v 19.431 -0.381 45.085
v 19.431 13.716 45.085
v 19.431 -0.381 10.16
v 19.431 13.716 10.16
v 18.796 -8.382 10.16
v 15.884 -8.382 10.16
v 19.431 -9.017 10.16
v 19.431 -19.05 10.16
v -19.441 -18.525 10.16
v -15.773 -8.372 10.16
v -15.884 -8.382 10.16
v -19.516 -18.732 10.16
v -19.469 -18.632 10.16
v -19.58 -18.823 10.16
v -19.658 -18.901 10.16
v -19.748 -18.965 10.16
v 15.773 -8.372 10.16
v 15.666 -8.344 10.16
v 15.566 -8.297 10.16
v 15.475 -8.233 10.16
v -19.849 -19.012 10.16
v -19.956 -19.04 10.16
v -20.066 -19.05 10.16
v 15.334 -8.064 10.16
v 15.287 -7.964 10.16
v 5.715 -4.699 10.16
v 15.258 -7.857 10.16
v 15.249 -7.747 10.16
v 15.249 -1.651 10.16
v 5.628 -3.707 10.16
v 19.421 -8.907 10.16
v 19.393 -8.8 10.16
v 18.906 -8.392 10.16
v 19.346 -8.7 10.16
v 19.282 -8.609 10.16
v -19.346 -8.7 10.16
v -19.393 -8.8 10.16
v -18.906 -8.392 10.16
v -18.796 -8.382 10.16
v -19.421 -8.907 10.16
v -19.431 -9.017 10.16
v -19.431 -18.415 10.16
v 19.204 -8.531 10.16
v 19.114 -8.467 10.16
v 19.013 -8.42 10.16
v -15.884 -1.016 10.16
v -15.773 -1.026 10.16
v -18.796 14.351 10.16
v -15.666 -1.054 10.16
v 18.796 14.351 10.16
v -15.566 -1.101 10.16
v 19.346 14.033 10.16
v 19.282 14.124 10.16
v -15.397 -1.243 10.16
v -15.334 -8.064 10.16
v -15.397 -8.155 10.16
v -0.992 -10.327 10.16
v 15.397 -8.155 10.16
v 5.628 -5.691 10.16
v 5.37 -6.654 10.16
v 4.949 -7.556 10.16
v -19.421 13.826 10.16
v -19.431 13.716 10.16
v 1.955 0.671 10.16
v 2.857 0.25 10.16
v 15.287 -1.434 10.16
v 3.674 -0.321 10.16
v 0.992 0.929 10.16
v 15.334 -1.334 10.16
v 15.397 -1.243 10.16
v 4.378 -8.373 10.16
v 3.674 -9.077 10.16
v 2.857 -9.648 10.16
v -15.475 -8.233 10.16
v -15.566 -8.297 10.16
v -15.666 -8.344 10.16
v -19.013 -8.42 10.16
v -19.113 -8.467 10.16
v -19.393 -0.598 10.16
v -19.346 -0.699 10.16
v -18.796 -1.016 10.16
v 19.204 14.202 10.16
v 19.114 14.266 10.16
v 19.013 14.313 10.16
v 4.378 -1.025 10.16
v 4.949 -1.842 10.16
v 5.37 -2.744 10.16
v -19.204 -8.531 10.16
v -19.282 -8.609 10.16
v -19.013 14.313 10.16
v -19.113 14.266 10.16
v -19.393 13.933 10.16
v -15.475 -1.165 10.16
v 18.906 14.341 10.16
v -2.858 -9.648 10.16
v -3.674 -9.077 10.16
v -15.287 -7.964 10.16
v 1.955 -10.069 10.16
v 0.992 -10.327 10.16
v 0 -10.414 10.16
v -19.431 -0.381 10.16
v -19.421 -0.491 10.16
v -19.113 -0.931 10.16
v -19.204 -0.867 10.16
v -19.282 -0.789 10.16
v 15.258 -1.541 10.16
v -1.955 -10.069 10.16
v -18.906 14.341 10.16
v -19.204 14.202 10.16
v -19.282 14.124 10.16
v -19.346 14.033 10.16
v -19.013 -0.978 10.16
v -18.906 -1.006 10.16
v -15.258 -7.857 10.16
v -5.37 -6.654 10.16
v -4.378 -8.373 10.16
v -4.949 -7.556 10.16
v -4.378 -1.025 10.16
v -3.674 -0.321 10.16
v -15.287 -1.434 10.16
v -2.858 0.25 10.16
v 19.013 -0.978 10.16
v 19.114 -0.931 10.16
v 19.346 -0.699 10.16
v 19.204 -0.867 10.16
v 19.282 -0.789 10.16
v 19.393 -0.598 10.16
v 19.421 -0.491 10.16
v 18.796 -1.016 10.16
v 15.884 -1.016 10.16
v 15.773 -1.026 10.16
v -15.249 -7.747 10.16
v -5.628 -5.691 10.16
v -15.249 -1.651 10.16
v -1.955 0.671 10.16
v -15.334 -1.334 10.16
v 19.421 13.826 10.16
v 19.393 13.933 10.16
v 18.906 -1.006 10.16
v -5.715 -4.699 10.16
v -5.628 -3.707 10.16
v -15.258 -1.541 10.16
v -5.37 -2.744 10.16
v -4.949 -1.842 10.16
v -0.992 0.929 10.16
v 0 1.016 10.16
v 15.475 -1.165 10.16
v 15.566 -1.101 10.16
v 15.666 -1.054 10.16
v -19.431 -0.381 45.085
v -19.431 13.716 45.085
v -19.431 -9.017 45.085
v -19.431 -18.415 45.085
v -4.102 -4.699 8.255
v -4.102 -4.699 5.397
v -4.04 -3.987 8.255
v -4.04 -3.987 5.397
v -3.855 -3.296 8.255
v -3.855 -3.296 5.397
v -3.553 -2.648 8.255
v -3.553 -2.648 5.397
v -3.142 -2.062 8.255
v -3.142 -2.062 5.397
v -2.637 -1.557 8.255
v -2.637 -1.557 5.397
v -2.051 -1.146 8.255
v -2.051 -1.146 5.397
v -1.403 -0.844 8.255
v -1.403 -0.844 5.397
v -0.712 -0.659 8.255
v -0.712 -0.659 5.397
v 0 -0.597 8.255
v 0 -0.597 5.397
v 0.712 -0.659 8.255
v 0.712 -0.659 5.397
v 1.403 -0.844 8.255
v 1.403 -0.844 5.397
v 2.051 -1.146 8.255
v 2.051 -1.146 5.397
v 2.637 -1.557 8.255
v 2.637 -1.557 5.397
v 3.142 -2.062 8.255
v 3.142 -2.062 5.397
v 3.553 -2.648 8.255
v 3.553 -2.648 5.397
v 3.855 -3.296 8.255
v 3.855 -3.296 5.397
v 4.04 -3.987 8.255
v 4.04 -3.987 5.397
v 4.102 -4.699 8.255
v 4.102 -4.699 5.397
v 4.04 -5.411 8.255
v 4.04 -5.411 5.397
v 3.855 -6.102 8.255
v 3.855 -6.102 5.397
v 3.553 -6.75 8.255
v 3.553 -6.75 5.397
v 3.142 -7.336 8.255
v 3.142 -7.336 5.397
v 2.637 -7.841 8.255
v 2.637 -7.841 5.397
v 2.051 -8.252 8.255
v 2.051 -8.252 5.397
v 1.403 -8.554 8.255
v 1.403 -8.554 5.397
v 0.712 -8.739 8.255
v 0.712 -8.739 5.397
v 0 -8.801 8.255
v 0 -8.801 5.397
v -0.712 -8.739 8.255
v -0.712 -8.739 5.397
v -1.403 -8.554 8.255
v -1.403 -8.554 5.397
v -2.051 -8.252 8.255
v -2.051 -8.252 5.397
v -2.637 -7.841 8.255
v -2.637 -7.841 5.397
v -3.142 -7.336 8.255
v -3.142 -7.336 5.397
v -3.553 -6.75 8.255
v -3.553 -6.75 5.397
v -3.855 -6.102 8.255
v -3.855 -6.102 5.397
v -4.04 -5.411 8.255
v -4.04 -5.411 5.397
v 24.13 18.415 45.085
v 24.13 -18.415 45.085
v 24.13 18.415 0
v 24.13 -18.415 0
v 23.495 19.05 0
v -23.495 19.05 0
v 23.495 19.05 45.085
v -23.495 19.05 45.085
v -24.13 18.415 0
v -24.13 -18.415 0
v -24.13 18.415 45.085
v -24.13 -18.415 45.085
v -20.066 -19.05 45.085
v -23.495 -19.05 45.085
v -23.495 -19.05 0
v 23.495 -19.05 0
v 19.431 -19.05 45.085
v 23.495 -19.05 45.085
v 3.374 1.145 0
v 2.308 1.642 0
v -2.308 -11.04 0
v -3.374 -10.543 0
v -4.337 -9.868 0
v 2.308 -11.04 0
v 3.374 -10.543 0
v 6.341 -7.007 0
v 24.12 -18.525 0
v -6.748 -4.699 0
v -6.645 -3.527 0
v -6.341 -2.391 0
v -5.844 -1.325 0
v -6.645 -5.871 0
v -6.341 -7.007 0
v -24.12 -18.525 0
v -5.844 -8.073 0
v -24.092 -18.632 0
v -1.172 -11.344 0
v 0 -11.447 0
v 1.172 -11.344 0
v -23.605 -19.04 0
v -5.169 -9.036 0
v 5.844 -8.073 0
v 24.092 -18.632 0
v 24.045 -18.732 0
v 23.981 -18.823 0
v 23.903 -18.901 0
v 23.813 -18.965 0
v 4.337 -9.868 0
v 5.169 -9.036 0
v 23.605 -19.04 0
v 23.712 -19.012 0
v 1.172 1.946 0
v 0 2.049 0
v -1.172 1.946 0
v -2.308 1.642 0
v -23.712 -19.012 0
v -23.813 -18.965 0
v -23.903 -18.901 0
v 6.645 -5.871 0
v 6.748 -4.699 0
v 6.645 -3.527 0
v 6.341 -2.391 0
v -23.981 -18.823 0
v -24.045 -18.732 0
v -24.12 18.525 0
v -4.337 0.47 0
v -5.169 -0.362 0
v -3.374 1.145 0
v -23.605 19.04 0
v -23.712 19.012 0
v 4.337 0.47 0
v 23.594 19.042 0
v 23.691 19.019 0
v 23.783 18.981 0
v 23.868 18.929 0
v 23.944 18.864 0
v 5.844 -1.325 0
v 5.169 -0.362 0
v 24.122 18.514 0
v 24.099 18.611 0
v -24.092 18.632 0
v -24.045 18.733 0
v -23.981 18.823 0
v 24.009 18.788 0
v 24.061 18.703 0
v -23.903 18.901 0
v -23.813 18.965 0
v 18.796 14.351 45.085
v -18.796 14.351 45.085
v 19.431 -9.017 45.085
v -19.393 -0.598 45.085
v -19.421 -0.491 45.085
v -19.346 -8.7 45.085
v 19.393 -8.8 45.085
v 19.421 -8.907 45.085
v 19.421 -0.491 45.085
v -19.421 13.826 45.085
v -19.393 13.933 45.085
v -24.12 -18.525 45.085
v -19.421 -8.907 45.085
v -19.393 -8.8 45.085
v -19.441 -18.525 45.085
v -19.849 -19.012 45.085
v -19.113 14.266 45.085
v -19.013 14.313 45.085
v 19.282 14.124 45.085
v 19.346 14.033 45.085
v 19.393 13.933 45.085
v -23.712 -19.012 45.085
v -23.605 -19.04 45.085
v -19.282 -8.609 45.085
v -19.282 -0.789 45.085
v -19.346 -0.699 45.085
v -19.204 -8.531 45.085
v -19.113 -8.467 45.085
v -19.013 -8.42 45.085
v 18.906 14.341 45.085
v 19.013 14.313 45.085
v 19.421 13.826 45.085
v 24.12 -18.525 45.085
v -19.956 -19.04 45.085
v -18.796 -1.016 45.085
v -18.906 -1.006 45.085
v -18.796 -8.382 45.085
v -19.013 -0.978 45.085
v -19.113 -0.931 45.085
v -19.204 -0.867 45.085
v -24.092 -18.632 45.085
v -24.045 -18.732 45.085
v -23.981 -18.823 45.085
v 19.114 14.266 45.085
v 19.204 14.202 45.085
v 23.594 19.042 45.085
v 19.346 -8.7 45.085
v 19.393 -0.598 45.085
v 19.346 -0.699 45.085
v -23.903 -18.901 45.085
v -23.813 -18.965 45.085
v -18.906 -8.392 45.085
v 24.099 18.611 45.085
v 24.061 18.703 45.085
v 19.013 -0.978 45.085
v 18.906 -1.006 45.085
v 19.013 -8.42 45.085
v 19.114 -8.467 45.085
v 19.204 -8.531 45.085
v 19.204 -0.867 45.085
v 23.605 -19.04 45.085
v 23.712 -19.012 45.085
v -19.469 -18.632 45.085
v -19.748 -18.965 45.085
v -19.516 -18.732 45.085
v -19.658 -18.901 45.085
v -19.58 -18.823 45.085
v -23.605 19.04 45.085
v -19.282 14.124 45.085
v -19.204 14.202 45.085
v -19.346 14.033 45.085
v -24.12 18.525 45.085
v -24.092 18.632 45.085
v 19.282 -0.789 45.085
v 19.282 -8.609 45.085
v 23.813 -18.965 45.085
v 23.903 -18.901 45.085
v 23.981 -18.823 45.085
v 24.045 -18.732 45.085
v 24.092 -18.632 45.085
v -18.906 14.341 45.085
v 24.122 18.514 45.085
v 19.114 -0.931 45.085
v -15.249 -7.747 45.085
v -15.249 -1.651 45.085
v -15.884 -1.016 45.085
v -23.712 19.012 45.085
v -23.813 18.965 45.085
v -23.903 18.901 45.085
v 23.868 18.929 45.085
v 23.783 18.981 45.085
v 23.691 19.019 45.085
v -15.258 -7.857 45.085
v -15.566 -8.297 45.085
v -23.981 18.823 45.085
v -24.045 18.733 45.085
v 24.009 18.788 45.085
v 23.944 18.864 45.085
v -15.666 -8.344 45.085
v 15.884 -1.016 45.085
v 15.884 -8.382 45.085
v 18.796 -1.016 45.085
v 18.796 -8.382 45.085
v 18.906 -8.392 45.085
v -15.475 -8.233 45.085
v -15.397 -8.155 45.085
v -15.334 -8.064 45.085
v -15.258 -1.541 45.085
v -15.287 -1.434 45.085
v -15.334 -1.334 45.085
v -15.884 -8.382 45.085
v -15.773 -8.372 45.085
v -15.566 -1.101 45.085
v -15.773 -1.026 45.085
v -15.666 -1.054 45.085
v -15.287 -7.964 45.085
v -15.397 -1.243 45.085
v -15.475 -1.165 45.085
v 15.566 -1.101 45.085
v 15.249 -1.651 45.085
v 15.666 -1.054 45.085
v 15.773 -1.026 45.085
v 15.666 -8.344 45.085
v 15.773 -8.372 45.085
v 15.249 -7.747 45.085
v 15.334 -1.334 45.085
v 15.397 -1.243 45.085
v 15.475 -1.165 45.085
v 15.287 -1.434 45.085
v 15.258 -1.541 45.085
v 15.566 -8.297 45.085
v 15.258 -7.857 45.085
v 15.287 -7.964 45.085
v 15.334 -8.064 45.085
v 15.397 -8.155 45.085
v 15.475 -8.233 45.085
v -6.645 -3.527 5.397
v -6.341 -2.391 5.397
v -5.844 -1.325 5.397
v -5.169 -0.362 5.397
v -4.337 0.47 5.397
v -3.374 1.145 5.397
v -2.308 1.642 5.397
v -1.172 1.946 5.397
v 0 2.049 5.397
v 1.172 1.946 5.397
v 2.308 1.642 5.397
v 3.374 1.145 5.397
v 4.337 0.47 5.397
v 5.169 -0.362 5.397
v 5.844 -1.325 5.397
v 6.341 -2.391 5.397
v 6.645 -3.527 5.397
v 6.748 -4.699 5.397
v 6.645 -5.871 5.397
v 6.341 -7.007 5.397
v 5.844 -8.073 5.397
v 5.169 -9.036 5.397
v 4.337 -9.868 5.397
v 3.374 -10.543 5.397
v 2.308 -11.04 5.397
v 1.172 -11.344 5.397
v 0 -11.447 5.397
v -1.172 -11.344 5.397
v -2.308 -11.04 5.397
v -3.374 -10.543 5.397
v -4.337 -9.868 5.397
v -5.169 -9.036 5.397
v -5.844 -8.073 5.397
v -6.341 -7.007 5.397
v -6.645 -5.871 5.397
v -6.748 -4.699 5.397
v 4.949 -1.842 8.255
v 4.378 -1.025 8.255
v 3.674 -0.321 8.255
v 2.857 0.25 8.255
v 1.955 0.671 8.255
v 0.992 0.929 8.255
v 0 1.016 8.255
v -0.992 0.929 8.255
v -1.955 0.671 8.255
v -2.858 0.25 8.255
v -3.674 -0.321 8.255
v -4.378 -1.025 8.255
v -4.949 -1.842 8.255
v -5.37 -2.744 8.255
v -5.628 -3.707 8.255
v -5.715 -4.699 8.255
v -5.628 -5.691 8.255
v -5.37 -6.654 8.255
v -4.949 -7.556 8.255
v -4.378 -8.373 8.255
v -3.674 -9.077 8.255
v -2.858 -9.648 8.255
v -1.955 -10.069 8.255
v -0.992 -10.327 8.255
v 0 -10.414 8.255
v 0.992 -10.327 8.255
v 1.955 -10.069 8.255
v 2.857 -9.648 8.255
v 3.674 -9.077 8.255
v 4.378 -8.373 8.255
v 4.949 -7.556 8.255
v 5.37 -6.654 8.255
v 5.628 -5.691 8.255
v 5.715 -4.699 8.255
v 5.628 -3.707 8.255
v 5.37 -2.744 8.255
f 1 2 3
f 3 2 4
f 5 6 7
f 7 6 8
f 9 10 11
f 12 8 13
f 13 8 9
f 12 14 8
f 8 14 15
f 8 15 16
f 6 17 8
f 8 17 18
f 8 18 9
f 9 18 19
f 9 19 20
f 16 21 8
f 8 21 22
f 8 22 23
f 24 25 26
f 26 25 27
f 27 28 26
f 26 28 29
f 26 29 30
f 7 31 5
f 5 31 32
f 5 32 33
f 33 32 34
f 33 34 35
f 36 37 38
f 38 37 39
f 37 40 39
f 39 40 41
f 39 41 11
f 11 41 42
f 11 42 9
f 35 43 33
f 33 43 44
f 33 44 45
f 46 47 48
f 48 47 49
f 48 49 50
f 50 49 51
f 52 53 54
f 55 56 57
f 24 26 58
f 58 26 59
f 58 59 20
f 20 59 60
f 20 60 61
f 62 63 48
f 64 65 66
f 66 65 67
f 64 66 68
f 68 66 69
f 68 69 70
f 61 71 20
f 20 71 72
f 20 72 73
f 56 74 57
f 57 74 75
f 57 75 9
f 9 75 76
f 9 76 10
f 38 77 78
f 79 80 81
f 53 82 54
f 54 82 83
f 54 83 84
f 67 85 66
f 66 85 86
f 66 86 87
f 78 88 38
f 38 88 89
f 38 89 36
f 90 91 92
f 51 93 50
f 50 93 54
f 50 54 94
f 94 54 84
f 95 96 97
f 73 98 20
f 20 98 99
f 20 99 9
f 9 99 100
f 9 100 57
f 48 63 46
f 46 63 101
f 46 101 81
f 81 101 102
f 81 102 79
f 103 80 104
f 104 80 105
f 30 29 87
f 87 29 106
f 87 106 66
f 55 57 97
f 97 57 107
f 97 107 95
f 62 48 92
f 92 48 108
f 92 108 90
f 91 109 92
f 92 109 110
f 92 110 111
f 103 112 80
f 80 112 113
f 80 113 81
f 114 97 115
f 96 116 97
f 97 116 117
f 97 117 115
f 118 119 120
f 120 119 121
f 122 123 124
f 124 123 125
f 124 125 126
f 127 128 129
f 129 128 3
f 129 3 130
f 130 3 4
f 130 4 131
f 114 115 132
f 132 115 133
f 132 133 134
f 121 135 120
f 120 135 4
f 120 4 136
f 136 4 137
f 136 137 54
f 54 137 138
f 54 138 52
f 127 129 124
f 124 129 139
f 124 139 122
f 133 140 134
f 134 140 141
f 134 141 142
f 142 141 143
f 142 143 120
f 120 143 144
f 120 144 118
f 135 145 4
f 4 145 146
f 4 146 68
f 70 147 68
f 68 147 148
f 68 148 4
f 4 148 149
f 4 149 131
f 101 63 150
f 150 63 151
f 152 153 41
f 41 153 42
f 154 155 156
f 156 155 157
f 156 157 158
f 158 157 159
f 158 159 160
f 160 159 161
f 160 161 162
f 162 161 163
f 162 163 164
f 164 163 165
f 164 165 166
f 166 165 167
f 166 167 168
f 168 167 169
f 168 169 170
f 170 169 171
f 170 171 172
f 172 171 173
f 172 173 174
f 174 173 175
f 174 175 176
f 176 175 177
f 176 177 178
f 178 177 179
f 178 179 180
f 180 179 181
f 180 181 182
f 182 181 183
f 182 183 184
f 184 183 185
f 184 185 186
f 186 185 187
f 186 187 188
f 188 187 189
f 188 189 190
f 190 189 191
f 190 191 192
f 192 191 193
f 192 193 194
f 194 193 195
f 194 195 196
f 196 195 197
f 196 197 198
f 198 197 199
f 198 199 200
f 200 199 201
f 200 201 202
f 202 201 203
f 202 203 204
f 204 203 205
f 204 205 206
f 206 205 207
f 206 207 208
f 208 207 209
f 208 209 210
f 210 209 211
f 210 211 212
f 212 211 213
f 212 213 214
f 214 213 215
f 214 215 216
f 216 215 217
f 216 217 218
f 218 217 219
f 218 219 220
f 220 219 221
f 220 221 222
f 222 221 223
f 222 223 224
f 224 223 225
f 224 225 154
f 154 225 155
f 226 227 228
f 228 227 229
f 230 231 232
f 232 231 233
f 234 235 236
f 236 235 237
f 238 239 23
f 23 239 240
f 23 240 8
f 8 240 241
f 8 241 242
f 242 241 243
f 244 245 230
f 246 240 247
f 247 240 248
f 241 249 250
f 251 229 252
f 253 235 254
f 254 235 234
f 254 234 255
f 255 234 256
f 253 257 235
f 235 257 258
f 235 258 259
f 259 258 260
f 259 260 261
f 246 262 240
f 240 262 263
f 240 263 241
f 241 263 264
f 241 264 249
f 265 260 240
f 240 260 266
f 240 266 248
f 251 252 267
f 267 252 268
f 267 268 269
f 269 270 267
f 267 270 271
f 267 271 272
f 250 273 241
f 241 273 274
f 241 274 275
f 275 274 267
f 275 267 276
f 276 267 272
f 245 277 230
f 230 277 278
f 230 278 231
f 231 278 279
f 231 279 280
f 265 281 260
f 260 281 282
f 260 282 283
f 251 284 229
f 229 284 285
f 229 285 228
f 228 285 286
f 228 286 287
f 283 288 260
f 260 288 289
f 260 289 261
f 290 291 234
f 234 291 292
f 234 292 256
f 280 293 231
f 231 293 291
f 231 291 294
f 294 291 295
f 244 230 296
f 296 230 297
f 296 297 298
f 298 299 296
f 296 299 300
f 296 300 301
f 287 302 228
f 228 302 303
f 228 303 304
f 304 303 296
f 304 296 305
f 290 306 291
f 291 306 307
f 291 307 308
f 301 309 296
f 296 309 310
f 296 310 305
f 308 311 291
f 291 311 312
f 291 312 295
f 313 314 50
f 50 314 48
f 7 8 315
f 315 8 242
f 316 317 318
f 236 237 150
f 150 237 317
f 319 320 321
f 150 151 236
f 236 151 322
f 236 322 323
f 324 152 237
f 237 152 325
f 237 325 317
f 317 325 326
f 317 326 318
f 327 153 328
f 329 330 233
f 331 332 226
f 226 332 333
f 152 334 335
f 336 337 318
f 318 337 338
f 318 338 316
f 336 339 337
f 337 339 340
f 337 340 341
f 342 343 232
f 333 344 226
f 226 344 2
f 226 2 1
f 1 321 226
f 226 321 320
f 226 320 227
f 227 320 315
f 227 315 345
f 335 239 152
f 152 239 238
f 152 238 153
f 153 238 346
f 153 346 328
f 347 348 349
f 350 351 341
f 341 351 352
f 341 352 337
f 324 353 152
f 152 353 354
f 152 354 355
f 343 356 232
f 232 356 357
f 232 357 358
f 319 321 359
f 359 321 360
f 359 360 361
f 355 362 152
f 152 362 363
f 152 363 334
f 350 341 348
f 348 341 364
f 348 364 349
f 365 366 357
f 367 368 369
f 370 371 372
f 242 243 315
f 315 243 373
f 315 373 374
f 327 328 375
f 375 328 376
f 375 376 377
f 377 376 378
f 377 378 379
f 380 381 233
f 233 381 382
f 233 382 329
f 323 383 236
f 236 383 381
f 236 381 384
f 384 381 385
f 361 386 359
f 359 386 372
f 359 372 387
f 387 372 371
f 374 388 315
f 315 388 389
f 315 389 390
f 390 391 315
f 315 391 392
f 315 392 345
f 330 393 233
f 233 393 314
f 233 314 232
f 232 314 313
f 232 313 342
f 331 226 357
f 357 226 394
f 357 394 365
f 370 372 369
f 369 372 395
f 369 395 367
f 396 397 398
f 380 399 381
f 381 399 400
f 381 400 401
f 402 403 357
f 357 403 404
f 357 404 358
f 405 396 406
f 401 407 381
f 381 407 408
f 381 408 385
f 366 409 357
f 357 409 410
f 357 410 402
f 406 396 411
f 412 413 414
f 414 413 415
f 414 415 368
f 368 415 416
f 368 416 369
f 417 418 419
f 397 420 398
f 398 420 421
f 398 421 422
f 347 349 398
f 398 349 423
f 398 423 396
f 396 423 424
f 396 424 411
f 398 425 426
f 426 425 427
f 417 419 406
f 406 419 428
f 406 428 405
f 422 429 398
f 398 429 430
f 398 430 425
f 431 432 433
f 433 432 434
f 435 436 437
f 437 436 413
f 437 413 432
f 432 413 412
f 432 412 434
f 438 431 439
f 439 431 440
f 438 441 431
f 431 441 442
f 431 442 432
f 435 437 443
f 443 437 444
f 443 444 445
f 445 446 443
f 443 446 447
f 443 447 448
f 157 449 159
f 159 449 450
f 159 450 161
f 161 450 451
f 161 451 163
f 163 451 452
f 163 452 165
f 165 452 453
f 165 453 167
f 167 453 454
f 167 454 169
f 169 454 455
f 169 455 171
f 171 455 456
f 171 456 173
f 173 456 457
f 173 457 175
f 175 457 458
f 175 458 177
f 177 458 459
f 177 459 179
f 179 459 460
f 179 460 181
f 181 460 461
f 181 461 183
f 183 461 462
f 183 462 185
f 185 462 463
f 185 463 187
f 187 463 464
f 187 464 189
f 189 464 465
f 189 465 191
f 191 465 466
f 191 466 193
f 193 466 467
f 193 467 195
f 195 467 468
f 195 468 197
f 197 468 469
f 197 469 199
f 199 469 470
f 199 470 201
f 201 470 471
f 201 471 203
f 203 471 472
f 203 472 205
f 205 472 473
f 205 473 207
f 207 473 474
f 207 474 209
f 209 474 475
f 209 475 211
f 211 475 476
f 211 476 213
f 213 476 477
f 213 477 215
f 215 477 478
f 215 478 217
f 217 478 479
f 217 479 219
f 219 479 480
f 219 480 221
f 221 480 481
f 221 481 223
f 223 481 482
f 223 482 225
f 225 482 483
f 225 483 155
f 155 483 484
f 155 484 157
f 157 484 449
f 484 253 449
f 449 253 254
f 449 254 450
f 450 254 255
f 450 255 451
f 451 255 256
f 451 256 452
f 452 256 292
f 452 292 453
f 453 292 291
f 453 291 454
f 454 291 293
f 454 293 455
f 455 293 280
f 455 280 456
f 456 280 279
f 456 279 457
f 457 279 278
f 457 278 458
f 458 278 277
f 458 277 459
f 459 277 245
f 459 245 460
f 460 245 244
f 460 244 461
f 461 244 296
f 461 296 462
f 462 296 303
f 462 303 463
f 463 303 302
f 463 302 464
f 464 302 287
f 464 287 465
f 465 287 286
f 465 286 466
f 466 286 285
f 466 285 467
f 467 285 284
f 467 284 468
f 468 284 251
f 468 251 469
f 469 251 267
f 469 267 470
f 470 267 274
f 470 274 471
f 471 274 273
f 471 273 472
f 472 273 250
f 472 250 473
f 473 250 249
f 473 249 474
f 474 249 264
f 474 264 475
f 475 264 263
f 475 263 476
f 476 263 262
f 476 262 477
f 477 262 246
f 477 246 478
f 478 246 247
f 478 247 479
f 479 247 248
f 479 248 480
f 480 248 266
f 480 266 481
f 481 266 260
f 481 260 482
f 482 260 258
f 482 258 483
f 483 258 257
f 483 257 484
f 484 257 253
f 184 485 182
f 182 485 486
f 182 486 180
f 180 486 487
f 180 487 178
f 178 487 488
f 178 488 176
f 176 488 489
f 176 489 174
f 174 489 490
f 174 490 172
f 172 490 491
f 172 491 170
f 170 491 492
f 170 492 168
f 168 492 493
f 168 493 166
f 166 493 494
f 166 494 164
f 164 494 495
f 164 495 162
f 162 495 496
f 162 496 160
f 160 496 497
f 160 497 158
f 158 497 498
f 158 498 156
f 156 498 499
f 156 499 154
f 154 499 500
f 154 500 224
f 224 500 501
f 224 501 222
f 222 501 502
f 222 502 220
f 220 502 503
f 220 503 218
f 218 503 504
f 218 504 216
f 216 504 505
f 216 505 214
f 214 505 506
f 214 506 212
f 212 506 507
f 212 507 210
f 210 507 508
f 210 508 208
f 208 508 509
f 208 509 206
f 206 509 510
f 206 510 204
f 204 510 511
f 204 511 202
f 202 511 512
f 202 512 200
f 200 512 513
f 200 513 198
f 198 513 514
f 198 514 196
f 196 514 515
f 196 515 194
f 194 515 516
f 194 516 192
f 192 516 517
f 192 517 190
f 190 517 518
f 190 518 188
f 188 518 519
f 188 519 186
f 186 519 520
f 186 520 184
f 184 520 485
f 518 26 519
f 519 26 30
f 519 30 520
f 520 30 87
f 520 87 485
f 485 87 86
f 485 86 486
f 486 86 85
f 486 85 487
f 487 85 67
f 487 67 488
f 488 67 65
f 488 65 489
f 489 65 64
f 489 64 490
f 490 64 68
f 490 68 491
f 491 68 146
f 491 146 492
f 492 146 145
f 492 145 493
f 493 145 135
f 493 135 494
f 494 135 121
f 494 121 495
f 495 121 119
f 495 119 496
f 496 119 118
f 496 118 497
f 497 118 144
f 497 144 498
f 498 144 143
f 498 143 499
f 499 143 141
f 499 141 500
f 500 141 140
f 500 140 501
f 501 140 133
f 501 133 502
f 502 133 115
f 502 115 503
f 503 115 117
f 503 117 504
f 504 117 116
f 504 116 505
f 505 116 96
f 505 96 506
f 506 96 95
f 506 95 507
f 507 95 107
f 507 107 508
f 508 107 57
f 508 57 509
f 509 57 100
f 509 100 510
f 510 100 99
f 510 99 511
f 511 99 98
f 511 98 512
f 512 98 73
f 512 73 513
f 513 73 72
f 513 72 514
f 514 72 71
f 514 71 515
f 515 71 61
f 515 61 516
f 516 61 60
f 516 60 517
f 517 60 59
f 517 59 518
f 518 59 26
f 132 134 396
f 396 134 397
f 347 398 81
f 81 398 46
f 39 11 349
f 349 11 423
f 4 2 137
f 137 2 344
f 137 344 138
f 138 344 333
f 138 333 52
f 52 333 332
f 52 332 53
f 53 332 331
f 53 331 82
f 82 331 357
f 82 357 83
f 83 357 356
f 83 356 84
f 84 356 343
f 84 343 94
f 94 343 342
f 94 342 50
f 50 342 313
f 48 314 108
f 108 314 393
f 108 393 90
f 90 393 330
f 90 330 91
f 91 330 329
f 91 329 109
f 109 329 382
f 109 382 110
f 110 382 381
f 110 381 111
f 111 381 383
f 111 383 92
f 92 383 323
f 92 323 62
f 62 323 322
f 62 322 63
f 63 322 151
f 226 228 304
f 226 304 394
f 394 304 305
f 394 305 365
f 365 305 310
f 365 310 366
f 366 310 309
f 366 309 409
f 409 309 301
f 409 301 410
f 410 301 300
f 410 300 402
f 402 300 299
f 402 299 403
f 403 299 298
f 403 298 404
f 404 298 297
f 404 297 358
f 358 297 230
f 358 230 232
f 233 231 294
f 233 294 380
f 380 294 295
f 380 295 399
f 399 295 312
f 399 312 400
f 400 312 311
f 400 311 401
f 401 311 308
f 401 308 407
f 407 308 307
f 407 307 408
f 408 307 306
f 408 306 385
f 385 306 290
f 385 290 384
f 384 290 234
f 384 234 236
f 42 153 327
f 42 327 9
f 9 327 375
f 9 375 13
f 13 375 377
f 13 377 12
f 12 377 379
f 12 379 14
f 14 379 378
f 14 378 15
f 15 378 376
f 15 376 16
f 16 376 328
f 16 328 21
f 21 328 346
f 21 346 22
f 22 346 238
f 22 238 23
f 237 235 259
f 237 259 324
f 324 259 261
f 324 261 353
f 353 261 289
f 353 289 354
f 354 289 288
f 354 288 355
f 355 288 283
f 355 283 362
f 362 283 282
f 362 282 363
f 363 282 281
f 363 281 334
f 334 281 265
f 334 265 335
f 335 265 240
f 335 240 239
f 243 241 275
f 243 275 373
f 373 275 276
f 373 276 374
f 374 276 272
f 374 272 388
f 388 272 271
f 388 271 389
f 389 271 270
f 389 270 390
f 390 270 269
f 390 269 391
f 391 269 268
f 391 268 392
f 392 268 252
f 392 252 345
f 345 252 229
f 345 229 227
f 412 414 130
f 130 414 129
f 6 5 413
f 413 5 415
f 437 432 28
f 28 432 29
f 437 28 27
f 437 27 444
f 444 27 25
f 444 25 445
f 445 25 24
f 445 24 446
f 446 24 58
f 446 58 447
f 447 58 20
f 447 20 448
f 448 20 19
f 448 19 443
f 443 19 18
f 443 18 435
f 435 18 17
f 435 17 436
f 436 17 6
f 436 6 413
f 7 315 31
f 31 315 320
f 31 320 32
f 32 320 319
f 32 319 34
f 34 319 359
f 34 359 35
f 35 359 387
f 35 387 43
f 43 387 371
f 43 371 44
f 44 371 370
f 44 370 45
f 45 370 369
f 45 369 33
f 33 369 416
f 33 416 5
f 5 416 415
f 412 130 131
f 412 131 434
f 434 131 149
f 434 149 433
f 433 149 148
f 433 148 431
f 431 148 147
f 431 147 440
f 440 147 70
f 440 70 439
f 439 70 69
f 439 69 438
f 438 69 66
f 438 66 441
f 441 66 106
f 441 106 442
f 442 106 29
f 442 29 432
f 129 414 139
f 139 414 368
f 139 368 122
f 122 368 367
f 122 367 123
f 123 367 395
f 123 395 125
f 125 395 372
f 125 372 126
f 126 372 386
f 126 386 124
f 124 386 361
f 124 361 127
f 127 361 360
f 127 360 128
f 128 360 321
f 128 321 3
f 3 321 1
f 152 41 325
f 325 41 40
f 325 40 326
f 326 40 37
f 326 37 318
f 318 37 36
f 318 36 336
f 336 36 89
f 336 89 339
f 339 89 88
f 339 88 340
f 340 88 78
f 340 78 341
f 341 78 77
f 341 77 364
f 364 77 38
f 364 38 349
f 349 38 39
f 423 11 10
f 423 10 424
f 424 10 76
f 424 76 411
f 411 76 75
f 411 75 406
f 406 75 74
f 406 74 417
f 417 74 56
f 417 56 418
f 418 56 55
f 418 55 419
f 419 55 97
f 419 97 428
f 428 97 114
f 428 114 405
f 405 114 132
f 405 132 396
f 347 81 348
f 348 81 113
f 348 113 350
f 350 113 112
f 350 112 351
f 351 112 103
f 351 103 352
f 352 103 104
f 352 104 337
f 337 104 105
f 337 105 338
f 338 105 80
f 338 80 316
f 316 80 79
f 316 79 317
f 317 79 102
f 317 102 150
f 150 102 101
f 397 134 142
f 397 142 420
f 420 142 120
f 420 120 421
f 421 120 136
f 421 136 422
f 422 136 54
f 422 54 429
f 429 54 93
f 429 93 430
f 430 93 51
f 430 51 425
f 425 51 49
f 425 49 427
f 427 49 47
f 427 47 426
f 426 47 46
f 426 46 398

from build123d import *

# Parameters (mm, degrees)
SKETCH1_W                                         = 48.26
SKETCH1_H                                         = 38.1
BOSS_EXTRUDE1_DEPTH                               = 10.16
BOSS_EXTRUDE3_DEPTH                               = 34.925
CBORE_FOR_5_16_SOCKET_HEAD_CAP_SCREW1_D           = 8.2042
CBORE_FOR_5_16_SOCKET_HEAD_CAP_SCREW1_CBORE_D     = 13.49502
CBORE_FOR_5_16_SOCKET_HEAD_CAP_SCREW1_CBORE_DEPTH = 5.3975
SKETCH7_R                                         = 5.715
CUT_EXTRUDE2_DEPTH                                = 1.905
SKETCH8_W                                         = 4.182361547
SKETCH8_H                                         = 7.366
BOSS_EXTRUDE4_DEPTH                               = 34.925
FILLET2_R                                         = 0.635
FILLET3_R                                         = 0.635
FILLET1_R                                         = 0.635


with BuildPart() as part:
    # Sketch1 → Boss-Extrude1 (new body)
    with BuildSketch(Plane.XY):
        Rectangle(SKETCH1_W, SKETCH1_H)
    extrude(amount=BOSS_EXTRUDE1_DEPTH)

    # Sketch5 → Boss-Extrude3 (add)
    with BuildSketch(Plane.XY.offset(10.16)):
        Polygon((-24.13, -19.05), (-24.13, 19.05), (24.13, 19.05), (24.13, -19.05), (19.431, -19.05), (19.431, 14.351), (-19.431, 14.351), (-19.431, -19.05), align=None)
    extrude(amount=BOSS_EXTRUDE3_DEPTH)

    # CBORE for 5/16 Socket Head Cap Screw1 (through all)
    with Locations(Plane(origin=(0, 0, 0), x_dir=(-1, 0, 0), z_dir=(0, 0, -1))):
        with Locations((0, -4.699)):
            CounterBoreHole(CBORE_FOR_5_16_SOCKET_HEAD_CAP_SCREW1_D / 2, CBORE_FOR_5_16_SOCKET_HEAD_CAP_SCREW1_CBORE_D / 2, CBORE_FOR_5_16_SOCKET_HEAD_CAP_SCREW1_CBORE_DEPTH)

    # Sketch7 → Cut-Extrude2 (cut)
    with BuildSketch(Plane.XY.offset(10.16)):
        with Locations((0, -4.699)):
            Circle(SKETCH7_R)
    extrude(amount=-CUT_EXTRUDE2_DEPTH, mode=Mode.SUBTRACT)

    # Sketch8 → Boss-Extrude4 (add)
    with BuildSketch(Plane.XY.offset(10.16)):
        with Locations((-17.339819227, -4.699)):
            Rectangle(SKETCH8_W, SKETCH8_H)
    boss_extrude4 = extrude(amount=BOSS_EXTRUDE4_DEPTH)

    # Fillet2
    fillet2_edges = [part.edges().sort_by_distance(p)[0] for p in [
        (-19.431, 14.351, 27.6225),
        (19.431, 14.351, 27.6225),
    ]]
    fillet(fillet2_edges, radius=FILLET2_R)

    # Fillet3
    fillet3_edges = [part.edges().sort_by_distance(p)[0] for p in [
        (-19.431, -19.05, 27.6225),
        (24.13, -19.05, 22.5425),
        (-24.13, -19.05, 22.5425),
        (-24.13, 19.05, 22.5425),
        (24.13, 19.05, 22.5425),
    ]]
    fillet(fillet3_edges, radius=FILLET3_R)

    # Mirror2: Boss-Extrude4 across plane
    add(boss_extrude4.mirror(Plane(origin=(0, 0, 0), x_dir=(0, 0, 1), z_dir=(1, 0, 0))))

    # Fillet1
    fillet1_edges = [part.edges().sort_by_distance(p)[0] for p in [
        (19.431, -1.016, 27.6225),
        (19.431, -8.382, 27.6225),
        (15.248638453, -8.382, 27.6225),
        (15.248638453, -1.016, 27.6225),
        (-15.248638453, -8.382, 27.6225),
        (-15.248638453, -1.016, 27.6225),
        (-19.431, -1.016, 27.6225),
        (-19.431, -8.382, 27.6225),
    ]]
    fillet(fillet1_edges, radius=FILLET1_R)


solid = part.part
